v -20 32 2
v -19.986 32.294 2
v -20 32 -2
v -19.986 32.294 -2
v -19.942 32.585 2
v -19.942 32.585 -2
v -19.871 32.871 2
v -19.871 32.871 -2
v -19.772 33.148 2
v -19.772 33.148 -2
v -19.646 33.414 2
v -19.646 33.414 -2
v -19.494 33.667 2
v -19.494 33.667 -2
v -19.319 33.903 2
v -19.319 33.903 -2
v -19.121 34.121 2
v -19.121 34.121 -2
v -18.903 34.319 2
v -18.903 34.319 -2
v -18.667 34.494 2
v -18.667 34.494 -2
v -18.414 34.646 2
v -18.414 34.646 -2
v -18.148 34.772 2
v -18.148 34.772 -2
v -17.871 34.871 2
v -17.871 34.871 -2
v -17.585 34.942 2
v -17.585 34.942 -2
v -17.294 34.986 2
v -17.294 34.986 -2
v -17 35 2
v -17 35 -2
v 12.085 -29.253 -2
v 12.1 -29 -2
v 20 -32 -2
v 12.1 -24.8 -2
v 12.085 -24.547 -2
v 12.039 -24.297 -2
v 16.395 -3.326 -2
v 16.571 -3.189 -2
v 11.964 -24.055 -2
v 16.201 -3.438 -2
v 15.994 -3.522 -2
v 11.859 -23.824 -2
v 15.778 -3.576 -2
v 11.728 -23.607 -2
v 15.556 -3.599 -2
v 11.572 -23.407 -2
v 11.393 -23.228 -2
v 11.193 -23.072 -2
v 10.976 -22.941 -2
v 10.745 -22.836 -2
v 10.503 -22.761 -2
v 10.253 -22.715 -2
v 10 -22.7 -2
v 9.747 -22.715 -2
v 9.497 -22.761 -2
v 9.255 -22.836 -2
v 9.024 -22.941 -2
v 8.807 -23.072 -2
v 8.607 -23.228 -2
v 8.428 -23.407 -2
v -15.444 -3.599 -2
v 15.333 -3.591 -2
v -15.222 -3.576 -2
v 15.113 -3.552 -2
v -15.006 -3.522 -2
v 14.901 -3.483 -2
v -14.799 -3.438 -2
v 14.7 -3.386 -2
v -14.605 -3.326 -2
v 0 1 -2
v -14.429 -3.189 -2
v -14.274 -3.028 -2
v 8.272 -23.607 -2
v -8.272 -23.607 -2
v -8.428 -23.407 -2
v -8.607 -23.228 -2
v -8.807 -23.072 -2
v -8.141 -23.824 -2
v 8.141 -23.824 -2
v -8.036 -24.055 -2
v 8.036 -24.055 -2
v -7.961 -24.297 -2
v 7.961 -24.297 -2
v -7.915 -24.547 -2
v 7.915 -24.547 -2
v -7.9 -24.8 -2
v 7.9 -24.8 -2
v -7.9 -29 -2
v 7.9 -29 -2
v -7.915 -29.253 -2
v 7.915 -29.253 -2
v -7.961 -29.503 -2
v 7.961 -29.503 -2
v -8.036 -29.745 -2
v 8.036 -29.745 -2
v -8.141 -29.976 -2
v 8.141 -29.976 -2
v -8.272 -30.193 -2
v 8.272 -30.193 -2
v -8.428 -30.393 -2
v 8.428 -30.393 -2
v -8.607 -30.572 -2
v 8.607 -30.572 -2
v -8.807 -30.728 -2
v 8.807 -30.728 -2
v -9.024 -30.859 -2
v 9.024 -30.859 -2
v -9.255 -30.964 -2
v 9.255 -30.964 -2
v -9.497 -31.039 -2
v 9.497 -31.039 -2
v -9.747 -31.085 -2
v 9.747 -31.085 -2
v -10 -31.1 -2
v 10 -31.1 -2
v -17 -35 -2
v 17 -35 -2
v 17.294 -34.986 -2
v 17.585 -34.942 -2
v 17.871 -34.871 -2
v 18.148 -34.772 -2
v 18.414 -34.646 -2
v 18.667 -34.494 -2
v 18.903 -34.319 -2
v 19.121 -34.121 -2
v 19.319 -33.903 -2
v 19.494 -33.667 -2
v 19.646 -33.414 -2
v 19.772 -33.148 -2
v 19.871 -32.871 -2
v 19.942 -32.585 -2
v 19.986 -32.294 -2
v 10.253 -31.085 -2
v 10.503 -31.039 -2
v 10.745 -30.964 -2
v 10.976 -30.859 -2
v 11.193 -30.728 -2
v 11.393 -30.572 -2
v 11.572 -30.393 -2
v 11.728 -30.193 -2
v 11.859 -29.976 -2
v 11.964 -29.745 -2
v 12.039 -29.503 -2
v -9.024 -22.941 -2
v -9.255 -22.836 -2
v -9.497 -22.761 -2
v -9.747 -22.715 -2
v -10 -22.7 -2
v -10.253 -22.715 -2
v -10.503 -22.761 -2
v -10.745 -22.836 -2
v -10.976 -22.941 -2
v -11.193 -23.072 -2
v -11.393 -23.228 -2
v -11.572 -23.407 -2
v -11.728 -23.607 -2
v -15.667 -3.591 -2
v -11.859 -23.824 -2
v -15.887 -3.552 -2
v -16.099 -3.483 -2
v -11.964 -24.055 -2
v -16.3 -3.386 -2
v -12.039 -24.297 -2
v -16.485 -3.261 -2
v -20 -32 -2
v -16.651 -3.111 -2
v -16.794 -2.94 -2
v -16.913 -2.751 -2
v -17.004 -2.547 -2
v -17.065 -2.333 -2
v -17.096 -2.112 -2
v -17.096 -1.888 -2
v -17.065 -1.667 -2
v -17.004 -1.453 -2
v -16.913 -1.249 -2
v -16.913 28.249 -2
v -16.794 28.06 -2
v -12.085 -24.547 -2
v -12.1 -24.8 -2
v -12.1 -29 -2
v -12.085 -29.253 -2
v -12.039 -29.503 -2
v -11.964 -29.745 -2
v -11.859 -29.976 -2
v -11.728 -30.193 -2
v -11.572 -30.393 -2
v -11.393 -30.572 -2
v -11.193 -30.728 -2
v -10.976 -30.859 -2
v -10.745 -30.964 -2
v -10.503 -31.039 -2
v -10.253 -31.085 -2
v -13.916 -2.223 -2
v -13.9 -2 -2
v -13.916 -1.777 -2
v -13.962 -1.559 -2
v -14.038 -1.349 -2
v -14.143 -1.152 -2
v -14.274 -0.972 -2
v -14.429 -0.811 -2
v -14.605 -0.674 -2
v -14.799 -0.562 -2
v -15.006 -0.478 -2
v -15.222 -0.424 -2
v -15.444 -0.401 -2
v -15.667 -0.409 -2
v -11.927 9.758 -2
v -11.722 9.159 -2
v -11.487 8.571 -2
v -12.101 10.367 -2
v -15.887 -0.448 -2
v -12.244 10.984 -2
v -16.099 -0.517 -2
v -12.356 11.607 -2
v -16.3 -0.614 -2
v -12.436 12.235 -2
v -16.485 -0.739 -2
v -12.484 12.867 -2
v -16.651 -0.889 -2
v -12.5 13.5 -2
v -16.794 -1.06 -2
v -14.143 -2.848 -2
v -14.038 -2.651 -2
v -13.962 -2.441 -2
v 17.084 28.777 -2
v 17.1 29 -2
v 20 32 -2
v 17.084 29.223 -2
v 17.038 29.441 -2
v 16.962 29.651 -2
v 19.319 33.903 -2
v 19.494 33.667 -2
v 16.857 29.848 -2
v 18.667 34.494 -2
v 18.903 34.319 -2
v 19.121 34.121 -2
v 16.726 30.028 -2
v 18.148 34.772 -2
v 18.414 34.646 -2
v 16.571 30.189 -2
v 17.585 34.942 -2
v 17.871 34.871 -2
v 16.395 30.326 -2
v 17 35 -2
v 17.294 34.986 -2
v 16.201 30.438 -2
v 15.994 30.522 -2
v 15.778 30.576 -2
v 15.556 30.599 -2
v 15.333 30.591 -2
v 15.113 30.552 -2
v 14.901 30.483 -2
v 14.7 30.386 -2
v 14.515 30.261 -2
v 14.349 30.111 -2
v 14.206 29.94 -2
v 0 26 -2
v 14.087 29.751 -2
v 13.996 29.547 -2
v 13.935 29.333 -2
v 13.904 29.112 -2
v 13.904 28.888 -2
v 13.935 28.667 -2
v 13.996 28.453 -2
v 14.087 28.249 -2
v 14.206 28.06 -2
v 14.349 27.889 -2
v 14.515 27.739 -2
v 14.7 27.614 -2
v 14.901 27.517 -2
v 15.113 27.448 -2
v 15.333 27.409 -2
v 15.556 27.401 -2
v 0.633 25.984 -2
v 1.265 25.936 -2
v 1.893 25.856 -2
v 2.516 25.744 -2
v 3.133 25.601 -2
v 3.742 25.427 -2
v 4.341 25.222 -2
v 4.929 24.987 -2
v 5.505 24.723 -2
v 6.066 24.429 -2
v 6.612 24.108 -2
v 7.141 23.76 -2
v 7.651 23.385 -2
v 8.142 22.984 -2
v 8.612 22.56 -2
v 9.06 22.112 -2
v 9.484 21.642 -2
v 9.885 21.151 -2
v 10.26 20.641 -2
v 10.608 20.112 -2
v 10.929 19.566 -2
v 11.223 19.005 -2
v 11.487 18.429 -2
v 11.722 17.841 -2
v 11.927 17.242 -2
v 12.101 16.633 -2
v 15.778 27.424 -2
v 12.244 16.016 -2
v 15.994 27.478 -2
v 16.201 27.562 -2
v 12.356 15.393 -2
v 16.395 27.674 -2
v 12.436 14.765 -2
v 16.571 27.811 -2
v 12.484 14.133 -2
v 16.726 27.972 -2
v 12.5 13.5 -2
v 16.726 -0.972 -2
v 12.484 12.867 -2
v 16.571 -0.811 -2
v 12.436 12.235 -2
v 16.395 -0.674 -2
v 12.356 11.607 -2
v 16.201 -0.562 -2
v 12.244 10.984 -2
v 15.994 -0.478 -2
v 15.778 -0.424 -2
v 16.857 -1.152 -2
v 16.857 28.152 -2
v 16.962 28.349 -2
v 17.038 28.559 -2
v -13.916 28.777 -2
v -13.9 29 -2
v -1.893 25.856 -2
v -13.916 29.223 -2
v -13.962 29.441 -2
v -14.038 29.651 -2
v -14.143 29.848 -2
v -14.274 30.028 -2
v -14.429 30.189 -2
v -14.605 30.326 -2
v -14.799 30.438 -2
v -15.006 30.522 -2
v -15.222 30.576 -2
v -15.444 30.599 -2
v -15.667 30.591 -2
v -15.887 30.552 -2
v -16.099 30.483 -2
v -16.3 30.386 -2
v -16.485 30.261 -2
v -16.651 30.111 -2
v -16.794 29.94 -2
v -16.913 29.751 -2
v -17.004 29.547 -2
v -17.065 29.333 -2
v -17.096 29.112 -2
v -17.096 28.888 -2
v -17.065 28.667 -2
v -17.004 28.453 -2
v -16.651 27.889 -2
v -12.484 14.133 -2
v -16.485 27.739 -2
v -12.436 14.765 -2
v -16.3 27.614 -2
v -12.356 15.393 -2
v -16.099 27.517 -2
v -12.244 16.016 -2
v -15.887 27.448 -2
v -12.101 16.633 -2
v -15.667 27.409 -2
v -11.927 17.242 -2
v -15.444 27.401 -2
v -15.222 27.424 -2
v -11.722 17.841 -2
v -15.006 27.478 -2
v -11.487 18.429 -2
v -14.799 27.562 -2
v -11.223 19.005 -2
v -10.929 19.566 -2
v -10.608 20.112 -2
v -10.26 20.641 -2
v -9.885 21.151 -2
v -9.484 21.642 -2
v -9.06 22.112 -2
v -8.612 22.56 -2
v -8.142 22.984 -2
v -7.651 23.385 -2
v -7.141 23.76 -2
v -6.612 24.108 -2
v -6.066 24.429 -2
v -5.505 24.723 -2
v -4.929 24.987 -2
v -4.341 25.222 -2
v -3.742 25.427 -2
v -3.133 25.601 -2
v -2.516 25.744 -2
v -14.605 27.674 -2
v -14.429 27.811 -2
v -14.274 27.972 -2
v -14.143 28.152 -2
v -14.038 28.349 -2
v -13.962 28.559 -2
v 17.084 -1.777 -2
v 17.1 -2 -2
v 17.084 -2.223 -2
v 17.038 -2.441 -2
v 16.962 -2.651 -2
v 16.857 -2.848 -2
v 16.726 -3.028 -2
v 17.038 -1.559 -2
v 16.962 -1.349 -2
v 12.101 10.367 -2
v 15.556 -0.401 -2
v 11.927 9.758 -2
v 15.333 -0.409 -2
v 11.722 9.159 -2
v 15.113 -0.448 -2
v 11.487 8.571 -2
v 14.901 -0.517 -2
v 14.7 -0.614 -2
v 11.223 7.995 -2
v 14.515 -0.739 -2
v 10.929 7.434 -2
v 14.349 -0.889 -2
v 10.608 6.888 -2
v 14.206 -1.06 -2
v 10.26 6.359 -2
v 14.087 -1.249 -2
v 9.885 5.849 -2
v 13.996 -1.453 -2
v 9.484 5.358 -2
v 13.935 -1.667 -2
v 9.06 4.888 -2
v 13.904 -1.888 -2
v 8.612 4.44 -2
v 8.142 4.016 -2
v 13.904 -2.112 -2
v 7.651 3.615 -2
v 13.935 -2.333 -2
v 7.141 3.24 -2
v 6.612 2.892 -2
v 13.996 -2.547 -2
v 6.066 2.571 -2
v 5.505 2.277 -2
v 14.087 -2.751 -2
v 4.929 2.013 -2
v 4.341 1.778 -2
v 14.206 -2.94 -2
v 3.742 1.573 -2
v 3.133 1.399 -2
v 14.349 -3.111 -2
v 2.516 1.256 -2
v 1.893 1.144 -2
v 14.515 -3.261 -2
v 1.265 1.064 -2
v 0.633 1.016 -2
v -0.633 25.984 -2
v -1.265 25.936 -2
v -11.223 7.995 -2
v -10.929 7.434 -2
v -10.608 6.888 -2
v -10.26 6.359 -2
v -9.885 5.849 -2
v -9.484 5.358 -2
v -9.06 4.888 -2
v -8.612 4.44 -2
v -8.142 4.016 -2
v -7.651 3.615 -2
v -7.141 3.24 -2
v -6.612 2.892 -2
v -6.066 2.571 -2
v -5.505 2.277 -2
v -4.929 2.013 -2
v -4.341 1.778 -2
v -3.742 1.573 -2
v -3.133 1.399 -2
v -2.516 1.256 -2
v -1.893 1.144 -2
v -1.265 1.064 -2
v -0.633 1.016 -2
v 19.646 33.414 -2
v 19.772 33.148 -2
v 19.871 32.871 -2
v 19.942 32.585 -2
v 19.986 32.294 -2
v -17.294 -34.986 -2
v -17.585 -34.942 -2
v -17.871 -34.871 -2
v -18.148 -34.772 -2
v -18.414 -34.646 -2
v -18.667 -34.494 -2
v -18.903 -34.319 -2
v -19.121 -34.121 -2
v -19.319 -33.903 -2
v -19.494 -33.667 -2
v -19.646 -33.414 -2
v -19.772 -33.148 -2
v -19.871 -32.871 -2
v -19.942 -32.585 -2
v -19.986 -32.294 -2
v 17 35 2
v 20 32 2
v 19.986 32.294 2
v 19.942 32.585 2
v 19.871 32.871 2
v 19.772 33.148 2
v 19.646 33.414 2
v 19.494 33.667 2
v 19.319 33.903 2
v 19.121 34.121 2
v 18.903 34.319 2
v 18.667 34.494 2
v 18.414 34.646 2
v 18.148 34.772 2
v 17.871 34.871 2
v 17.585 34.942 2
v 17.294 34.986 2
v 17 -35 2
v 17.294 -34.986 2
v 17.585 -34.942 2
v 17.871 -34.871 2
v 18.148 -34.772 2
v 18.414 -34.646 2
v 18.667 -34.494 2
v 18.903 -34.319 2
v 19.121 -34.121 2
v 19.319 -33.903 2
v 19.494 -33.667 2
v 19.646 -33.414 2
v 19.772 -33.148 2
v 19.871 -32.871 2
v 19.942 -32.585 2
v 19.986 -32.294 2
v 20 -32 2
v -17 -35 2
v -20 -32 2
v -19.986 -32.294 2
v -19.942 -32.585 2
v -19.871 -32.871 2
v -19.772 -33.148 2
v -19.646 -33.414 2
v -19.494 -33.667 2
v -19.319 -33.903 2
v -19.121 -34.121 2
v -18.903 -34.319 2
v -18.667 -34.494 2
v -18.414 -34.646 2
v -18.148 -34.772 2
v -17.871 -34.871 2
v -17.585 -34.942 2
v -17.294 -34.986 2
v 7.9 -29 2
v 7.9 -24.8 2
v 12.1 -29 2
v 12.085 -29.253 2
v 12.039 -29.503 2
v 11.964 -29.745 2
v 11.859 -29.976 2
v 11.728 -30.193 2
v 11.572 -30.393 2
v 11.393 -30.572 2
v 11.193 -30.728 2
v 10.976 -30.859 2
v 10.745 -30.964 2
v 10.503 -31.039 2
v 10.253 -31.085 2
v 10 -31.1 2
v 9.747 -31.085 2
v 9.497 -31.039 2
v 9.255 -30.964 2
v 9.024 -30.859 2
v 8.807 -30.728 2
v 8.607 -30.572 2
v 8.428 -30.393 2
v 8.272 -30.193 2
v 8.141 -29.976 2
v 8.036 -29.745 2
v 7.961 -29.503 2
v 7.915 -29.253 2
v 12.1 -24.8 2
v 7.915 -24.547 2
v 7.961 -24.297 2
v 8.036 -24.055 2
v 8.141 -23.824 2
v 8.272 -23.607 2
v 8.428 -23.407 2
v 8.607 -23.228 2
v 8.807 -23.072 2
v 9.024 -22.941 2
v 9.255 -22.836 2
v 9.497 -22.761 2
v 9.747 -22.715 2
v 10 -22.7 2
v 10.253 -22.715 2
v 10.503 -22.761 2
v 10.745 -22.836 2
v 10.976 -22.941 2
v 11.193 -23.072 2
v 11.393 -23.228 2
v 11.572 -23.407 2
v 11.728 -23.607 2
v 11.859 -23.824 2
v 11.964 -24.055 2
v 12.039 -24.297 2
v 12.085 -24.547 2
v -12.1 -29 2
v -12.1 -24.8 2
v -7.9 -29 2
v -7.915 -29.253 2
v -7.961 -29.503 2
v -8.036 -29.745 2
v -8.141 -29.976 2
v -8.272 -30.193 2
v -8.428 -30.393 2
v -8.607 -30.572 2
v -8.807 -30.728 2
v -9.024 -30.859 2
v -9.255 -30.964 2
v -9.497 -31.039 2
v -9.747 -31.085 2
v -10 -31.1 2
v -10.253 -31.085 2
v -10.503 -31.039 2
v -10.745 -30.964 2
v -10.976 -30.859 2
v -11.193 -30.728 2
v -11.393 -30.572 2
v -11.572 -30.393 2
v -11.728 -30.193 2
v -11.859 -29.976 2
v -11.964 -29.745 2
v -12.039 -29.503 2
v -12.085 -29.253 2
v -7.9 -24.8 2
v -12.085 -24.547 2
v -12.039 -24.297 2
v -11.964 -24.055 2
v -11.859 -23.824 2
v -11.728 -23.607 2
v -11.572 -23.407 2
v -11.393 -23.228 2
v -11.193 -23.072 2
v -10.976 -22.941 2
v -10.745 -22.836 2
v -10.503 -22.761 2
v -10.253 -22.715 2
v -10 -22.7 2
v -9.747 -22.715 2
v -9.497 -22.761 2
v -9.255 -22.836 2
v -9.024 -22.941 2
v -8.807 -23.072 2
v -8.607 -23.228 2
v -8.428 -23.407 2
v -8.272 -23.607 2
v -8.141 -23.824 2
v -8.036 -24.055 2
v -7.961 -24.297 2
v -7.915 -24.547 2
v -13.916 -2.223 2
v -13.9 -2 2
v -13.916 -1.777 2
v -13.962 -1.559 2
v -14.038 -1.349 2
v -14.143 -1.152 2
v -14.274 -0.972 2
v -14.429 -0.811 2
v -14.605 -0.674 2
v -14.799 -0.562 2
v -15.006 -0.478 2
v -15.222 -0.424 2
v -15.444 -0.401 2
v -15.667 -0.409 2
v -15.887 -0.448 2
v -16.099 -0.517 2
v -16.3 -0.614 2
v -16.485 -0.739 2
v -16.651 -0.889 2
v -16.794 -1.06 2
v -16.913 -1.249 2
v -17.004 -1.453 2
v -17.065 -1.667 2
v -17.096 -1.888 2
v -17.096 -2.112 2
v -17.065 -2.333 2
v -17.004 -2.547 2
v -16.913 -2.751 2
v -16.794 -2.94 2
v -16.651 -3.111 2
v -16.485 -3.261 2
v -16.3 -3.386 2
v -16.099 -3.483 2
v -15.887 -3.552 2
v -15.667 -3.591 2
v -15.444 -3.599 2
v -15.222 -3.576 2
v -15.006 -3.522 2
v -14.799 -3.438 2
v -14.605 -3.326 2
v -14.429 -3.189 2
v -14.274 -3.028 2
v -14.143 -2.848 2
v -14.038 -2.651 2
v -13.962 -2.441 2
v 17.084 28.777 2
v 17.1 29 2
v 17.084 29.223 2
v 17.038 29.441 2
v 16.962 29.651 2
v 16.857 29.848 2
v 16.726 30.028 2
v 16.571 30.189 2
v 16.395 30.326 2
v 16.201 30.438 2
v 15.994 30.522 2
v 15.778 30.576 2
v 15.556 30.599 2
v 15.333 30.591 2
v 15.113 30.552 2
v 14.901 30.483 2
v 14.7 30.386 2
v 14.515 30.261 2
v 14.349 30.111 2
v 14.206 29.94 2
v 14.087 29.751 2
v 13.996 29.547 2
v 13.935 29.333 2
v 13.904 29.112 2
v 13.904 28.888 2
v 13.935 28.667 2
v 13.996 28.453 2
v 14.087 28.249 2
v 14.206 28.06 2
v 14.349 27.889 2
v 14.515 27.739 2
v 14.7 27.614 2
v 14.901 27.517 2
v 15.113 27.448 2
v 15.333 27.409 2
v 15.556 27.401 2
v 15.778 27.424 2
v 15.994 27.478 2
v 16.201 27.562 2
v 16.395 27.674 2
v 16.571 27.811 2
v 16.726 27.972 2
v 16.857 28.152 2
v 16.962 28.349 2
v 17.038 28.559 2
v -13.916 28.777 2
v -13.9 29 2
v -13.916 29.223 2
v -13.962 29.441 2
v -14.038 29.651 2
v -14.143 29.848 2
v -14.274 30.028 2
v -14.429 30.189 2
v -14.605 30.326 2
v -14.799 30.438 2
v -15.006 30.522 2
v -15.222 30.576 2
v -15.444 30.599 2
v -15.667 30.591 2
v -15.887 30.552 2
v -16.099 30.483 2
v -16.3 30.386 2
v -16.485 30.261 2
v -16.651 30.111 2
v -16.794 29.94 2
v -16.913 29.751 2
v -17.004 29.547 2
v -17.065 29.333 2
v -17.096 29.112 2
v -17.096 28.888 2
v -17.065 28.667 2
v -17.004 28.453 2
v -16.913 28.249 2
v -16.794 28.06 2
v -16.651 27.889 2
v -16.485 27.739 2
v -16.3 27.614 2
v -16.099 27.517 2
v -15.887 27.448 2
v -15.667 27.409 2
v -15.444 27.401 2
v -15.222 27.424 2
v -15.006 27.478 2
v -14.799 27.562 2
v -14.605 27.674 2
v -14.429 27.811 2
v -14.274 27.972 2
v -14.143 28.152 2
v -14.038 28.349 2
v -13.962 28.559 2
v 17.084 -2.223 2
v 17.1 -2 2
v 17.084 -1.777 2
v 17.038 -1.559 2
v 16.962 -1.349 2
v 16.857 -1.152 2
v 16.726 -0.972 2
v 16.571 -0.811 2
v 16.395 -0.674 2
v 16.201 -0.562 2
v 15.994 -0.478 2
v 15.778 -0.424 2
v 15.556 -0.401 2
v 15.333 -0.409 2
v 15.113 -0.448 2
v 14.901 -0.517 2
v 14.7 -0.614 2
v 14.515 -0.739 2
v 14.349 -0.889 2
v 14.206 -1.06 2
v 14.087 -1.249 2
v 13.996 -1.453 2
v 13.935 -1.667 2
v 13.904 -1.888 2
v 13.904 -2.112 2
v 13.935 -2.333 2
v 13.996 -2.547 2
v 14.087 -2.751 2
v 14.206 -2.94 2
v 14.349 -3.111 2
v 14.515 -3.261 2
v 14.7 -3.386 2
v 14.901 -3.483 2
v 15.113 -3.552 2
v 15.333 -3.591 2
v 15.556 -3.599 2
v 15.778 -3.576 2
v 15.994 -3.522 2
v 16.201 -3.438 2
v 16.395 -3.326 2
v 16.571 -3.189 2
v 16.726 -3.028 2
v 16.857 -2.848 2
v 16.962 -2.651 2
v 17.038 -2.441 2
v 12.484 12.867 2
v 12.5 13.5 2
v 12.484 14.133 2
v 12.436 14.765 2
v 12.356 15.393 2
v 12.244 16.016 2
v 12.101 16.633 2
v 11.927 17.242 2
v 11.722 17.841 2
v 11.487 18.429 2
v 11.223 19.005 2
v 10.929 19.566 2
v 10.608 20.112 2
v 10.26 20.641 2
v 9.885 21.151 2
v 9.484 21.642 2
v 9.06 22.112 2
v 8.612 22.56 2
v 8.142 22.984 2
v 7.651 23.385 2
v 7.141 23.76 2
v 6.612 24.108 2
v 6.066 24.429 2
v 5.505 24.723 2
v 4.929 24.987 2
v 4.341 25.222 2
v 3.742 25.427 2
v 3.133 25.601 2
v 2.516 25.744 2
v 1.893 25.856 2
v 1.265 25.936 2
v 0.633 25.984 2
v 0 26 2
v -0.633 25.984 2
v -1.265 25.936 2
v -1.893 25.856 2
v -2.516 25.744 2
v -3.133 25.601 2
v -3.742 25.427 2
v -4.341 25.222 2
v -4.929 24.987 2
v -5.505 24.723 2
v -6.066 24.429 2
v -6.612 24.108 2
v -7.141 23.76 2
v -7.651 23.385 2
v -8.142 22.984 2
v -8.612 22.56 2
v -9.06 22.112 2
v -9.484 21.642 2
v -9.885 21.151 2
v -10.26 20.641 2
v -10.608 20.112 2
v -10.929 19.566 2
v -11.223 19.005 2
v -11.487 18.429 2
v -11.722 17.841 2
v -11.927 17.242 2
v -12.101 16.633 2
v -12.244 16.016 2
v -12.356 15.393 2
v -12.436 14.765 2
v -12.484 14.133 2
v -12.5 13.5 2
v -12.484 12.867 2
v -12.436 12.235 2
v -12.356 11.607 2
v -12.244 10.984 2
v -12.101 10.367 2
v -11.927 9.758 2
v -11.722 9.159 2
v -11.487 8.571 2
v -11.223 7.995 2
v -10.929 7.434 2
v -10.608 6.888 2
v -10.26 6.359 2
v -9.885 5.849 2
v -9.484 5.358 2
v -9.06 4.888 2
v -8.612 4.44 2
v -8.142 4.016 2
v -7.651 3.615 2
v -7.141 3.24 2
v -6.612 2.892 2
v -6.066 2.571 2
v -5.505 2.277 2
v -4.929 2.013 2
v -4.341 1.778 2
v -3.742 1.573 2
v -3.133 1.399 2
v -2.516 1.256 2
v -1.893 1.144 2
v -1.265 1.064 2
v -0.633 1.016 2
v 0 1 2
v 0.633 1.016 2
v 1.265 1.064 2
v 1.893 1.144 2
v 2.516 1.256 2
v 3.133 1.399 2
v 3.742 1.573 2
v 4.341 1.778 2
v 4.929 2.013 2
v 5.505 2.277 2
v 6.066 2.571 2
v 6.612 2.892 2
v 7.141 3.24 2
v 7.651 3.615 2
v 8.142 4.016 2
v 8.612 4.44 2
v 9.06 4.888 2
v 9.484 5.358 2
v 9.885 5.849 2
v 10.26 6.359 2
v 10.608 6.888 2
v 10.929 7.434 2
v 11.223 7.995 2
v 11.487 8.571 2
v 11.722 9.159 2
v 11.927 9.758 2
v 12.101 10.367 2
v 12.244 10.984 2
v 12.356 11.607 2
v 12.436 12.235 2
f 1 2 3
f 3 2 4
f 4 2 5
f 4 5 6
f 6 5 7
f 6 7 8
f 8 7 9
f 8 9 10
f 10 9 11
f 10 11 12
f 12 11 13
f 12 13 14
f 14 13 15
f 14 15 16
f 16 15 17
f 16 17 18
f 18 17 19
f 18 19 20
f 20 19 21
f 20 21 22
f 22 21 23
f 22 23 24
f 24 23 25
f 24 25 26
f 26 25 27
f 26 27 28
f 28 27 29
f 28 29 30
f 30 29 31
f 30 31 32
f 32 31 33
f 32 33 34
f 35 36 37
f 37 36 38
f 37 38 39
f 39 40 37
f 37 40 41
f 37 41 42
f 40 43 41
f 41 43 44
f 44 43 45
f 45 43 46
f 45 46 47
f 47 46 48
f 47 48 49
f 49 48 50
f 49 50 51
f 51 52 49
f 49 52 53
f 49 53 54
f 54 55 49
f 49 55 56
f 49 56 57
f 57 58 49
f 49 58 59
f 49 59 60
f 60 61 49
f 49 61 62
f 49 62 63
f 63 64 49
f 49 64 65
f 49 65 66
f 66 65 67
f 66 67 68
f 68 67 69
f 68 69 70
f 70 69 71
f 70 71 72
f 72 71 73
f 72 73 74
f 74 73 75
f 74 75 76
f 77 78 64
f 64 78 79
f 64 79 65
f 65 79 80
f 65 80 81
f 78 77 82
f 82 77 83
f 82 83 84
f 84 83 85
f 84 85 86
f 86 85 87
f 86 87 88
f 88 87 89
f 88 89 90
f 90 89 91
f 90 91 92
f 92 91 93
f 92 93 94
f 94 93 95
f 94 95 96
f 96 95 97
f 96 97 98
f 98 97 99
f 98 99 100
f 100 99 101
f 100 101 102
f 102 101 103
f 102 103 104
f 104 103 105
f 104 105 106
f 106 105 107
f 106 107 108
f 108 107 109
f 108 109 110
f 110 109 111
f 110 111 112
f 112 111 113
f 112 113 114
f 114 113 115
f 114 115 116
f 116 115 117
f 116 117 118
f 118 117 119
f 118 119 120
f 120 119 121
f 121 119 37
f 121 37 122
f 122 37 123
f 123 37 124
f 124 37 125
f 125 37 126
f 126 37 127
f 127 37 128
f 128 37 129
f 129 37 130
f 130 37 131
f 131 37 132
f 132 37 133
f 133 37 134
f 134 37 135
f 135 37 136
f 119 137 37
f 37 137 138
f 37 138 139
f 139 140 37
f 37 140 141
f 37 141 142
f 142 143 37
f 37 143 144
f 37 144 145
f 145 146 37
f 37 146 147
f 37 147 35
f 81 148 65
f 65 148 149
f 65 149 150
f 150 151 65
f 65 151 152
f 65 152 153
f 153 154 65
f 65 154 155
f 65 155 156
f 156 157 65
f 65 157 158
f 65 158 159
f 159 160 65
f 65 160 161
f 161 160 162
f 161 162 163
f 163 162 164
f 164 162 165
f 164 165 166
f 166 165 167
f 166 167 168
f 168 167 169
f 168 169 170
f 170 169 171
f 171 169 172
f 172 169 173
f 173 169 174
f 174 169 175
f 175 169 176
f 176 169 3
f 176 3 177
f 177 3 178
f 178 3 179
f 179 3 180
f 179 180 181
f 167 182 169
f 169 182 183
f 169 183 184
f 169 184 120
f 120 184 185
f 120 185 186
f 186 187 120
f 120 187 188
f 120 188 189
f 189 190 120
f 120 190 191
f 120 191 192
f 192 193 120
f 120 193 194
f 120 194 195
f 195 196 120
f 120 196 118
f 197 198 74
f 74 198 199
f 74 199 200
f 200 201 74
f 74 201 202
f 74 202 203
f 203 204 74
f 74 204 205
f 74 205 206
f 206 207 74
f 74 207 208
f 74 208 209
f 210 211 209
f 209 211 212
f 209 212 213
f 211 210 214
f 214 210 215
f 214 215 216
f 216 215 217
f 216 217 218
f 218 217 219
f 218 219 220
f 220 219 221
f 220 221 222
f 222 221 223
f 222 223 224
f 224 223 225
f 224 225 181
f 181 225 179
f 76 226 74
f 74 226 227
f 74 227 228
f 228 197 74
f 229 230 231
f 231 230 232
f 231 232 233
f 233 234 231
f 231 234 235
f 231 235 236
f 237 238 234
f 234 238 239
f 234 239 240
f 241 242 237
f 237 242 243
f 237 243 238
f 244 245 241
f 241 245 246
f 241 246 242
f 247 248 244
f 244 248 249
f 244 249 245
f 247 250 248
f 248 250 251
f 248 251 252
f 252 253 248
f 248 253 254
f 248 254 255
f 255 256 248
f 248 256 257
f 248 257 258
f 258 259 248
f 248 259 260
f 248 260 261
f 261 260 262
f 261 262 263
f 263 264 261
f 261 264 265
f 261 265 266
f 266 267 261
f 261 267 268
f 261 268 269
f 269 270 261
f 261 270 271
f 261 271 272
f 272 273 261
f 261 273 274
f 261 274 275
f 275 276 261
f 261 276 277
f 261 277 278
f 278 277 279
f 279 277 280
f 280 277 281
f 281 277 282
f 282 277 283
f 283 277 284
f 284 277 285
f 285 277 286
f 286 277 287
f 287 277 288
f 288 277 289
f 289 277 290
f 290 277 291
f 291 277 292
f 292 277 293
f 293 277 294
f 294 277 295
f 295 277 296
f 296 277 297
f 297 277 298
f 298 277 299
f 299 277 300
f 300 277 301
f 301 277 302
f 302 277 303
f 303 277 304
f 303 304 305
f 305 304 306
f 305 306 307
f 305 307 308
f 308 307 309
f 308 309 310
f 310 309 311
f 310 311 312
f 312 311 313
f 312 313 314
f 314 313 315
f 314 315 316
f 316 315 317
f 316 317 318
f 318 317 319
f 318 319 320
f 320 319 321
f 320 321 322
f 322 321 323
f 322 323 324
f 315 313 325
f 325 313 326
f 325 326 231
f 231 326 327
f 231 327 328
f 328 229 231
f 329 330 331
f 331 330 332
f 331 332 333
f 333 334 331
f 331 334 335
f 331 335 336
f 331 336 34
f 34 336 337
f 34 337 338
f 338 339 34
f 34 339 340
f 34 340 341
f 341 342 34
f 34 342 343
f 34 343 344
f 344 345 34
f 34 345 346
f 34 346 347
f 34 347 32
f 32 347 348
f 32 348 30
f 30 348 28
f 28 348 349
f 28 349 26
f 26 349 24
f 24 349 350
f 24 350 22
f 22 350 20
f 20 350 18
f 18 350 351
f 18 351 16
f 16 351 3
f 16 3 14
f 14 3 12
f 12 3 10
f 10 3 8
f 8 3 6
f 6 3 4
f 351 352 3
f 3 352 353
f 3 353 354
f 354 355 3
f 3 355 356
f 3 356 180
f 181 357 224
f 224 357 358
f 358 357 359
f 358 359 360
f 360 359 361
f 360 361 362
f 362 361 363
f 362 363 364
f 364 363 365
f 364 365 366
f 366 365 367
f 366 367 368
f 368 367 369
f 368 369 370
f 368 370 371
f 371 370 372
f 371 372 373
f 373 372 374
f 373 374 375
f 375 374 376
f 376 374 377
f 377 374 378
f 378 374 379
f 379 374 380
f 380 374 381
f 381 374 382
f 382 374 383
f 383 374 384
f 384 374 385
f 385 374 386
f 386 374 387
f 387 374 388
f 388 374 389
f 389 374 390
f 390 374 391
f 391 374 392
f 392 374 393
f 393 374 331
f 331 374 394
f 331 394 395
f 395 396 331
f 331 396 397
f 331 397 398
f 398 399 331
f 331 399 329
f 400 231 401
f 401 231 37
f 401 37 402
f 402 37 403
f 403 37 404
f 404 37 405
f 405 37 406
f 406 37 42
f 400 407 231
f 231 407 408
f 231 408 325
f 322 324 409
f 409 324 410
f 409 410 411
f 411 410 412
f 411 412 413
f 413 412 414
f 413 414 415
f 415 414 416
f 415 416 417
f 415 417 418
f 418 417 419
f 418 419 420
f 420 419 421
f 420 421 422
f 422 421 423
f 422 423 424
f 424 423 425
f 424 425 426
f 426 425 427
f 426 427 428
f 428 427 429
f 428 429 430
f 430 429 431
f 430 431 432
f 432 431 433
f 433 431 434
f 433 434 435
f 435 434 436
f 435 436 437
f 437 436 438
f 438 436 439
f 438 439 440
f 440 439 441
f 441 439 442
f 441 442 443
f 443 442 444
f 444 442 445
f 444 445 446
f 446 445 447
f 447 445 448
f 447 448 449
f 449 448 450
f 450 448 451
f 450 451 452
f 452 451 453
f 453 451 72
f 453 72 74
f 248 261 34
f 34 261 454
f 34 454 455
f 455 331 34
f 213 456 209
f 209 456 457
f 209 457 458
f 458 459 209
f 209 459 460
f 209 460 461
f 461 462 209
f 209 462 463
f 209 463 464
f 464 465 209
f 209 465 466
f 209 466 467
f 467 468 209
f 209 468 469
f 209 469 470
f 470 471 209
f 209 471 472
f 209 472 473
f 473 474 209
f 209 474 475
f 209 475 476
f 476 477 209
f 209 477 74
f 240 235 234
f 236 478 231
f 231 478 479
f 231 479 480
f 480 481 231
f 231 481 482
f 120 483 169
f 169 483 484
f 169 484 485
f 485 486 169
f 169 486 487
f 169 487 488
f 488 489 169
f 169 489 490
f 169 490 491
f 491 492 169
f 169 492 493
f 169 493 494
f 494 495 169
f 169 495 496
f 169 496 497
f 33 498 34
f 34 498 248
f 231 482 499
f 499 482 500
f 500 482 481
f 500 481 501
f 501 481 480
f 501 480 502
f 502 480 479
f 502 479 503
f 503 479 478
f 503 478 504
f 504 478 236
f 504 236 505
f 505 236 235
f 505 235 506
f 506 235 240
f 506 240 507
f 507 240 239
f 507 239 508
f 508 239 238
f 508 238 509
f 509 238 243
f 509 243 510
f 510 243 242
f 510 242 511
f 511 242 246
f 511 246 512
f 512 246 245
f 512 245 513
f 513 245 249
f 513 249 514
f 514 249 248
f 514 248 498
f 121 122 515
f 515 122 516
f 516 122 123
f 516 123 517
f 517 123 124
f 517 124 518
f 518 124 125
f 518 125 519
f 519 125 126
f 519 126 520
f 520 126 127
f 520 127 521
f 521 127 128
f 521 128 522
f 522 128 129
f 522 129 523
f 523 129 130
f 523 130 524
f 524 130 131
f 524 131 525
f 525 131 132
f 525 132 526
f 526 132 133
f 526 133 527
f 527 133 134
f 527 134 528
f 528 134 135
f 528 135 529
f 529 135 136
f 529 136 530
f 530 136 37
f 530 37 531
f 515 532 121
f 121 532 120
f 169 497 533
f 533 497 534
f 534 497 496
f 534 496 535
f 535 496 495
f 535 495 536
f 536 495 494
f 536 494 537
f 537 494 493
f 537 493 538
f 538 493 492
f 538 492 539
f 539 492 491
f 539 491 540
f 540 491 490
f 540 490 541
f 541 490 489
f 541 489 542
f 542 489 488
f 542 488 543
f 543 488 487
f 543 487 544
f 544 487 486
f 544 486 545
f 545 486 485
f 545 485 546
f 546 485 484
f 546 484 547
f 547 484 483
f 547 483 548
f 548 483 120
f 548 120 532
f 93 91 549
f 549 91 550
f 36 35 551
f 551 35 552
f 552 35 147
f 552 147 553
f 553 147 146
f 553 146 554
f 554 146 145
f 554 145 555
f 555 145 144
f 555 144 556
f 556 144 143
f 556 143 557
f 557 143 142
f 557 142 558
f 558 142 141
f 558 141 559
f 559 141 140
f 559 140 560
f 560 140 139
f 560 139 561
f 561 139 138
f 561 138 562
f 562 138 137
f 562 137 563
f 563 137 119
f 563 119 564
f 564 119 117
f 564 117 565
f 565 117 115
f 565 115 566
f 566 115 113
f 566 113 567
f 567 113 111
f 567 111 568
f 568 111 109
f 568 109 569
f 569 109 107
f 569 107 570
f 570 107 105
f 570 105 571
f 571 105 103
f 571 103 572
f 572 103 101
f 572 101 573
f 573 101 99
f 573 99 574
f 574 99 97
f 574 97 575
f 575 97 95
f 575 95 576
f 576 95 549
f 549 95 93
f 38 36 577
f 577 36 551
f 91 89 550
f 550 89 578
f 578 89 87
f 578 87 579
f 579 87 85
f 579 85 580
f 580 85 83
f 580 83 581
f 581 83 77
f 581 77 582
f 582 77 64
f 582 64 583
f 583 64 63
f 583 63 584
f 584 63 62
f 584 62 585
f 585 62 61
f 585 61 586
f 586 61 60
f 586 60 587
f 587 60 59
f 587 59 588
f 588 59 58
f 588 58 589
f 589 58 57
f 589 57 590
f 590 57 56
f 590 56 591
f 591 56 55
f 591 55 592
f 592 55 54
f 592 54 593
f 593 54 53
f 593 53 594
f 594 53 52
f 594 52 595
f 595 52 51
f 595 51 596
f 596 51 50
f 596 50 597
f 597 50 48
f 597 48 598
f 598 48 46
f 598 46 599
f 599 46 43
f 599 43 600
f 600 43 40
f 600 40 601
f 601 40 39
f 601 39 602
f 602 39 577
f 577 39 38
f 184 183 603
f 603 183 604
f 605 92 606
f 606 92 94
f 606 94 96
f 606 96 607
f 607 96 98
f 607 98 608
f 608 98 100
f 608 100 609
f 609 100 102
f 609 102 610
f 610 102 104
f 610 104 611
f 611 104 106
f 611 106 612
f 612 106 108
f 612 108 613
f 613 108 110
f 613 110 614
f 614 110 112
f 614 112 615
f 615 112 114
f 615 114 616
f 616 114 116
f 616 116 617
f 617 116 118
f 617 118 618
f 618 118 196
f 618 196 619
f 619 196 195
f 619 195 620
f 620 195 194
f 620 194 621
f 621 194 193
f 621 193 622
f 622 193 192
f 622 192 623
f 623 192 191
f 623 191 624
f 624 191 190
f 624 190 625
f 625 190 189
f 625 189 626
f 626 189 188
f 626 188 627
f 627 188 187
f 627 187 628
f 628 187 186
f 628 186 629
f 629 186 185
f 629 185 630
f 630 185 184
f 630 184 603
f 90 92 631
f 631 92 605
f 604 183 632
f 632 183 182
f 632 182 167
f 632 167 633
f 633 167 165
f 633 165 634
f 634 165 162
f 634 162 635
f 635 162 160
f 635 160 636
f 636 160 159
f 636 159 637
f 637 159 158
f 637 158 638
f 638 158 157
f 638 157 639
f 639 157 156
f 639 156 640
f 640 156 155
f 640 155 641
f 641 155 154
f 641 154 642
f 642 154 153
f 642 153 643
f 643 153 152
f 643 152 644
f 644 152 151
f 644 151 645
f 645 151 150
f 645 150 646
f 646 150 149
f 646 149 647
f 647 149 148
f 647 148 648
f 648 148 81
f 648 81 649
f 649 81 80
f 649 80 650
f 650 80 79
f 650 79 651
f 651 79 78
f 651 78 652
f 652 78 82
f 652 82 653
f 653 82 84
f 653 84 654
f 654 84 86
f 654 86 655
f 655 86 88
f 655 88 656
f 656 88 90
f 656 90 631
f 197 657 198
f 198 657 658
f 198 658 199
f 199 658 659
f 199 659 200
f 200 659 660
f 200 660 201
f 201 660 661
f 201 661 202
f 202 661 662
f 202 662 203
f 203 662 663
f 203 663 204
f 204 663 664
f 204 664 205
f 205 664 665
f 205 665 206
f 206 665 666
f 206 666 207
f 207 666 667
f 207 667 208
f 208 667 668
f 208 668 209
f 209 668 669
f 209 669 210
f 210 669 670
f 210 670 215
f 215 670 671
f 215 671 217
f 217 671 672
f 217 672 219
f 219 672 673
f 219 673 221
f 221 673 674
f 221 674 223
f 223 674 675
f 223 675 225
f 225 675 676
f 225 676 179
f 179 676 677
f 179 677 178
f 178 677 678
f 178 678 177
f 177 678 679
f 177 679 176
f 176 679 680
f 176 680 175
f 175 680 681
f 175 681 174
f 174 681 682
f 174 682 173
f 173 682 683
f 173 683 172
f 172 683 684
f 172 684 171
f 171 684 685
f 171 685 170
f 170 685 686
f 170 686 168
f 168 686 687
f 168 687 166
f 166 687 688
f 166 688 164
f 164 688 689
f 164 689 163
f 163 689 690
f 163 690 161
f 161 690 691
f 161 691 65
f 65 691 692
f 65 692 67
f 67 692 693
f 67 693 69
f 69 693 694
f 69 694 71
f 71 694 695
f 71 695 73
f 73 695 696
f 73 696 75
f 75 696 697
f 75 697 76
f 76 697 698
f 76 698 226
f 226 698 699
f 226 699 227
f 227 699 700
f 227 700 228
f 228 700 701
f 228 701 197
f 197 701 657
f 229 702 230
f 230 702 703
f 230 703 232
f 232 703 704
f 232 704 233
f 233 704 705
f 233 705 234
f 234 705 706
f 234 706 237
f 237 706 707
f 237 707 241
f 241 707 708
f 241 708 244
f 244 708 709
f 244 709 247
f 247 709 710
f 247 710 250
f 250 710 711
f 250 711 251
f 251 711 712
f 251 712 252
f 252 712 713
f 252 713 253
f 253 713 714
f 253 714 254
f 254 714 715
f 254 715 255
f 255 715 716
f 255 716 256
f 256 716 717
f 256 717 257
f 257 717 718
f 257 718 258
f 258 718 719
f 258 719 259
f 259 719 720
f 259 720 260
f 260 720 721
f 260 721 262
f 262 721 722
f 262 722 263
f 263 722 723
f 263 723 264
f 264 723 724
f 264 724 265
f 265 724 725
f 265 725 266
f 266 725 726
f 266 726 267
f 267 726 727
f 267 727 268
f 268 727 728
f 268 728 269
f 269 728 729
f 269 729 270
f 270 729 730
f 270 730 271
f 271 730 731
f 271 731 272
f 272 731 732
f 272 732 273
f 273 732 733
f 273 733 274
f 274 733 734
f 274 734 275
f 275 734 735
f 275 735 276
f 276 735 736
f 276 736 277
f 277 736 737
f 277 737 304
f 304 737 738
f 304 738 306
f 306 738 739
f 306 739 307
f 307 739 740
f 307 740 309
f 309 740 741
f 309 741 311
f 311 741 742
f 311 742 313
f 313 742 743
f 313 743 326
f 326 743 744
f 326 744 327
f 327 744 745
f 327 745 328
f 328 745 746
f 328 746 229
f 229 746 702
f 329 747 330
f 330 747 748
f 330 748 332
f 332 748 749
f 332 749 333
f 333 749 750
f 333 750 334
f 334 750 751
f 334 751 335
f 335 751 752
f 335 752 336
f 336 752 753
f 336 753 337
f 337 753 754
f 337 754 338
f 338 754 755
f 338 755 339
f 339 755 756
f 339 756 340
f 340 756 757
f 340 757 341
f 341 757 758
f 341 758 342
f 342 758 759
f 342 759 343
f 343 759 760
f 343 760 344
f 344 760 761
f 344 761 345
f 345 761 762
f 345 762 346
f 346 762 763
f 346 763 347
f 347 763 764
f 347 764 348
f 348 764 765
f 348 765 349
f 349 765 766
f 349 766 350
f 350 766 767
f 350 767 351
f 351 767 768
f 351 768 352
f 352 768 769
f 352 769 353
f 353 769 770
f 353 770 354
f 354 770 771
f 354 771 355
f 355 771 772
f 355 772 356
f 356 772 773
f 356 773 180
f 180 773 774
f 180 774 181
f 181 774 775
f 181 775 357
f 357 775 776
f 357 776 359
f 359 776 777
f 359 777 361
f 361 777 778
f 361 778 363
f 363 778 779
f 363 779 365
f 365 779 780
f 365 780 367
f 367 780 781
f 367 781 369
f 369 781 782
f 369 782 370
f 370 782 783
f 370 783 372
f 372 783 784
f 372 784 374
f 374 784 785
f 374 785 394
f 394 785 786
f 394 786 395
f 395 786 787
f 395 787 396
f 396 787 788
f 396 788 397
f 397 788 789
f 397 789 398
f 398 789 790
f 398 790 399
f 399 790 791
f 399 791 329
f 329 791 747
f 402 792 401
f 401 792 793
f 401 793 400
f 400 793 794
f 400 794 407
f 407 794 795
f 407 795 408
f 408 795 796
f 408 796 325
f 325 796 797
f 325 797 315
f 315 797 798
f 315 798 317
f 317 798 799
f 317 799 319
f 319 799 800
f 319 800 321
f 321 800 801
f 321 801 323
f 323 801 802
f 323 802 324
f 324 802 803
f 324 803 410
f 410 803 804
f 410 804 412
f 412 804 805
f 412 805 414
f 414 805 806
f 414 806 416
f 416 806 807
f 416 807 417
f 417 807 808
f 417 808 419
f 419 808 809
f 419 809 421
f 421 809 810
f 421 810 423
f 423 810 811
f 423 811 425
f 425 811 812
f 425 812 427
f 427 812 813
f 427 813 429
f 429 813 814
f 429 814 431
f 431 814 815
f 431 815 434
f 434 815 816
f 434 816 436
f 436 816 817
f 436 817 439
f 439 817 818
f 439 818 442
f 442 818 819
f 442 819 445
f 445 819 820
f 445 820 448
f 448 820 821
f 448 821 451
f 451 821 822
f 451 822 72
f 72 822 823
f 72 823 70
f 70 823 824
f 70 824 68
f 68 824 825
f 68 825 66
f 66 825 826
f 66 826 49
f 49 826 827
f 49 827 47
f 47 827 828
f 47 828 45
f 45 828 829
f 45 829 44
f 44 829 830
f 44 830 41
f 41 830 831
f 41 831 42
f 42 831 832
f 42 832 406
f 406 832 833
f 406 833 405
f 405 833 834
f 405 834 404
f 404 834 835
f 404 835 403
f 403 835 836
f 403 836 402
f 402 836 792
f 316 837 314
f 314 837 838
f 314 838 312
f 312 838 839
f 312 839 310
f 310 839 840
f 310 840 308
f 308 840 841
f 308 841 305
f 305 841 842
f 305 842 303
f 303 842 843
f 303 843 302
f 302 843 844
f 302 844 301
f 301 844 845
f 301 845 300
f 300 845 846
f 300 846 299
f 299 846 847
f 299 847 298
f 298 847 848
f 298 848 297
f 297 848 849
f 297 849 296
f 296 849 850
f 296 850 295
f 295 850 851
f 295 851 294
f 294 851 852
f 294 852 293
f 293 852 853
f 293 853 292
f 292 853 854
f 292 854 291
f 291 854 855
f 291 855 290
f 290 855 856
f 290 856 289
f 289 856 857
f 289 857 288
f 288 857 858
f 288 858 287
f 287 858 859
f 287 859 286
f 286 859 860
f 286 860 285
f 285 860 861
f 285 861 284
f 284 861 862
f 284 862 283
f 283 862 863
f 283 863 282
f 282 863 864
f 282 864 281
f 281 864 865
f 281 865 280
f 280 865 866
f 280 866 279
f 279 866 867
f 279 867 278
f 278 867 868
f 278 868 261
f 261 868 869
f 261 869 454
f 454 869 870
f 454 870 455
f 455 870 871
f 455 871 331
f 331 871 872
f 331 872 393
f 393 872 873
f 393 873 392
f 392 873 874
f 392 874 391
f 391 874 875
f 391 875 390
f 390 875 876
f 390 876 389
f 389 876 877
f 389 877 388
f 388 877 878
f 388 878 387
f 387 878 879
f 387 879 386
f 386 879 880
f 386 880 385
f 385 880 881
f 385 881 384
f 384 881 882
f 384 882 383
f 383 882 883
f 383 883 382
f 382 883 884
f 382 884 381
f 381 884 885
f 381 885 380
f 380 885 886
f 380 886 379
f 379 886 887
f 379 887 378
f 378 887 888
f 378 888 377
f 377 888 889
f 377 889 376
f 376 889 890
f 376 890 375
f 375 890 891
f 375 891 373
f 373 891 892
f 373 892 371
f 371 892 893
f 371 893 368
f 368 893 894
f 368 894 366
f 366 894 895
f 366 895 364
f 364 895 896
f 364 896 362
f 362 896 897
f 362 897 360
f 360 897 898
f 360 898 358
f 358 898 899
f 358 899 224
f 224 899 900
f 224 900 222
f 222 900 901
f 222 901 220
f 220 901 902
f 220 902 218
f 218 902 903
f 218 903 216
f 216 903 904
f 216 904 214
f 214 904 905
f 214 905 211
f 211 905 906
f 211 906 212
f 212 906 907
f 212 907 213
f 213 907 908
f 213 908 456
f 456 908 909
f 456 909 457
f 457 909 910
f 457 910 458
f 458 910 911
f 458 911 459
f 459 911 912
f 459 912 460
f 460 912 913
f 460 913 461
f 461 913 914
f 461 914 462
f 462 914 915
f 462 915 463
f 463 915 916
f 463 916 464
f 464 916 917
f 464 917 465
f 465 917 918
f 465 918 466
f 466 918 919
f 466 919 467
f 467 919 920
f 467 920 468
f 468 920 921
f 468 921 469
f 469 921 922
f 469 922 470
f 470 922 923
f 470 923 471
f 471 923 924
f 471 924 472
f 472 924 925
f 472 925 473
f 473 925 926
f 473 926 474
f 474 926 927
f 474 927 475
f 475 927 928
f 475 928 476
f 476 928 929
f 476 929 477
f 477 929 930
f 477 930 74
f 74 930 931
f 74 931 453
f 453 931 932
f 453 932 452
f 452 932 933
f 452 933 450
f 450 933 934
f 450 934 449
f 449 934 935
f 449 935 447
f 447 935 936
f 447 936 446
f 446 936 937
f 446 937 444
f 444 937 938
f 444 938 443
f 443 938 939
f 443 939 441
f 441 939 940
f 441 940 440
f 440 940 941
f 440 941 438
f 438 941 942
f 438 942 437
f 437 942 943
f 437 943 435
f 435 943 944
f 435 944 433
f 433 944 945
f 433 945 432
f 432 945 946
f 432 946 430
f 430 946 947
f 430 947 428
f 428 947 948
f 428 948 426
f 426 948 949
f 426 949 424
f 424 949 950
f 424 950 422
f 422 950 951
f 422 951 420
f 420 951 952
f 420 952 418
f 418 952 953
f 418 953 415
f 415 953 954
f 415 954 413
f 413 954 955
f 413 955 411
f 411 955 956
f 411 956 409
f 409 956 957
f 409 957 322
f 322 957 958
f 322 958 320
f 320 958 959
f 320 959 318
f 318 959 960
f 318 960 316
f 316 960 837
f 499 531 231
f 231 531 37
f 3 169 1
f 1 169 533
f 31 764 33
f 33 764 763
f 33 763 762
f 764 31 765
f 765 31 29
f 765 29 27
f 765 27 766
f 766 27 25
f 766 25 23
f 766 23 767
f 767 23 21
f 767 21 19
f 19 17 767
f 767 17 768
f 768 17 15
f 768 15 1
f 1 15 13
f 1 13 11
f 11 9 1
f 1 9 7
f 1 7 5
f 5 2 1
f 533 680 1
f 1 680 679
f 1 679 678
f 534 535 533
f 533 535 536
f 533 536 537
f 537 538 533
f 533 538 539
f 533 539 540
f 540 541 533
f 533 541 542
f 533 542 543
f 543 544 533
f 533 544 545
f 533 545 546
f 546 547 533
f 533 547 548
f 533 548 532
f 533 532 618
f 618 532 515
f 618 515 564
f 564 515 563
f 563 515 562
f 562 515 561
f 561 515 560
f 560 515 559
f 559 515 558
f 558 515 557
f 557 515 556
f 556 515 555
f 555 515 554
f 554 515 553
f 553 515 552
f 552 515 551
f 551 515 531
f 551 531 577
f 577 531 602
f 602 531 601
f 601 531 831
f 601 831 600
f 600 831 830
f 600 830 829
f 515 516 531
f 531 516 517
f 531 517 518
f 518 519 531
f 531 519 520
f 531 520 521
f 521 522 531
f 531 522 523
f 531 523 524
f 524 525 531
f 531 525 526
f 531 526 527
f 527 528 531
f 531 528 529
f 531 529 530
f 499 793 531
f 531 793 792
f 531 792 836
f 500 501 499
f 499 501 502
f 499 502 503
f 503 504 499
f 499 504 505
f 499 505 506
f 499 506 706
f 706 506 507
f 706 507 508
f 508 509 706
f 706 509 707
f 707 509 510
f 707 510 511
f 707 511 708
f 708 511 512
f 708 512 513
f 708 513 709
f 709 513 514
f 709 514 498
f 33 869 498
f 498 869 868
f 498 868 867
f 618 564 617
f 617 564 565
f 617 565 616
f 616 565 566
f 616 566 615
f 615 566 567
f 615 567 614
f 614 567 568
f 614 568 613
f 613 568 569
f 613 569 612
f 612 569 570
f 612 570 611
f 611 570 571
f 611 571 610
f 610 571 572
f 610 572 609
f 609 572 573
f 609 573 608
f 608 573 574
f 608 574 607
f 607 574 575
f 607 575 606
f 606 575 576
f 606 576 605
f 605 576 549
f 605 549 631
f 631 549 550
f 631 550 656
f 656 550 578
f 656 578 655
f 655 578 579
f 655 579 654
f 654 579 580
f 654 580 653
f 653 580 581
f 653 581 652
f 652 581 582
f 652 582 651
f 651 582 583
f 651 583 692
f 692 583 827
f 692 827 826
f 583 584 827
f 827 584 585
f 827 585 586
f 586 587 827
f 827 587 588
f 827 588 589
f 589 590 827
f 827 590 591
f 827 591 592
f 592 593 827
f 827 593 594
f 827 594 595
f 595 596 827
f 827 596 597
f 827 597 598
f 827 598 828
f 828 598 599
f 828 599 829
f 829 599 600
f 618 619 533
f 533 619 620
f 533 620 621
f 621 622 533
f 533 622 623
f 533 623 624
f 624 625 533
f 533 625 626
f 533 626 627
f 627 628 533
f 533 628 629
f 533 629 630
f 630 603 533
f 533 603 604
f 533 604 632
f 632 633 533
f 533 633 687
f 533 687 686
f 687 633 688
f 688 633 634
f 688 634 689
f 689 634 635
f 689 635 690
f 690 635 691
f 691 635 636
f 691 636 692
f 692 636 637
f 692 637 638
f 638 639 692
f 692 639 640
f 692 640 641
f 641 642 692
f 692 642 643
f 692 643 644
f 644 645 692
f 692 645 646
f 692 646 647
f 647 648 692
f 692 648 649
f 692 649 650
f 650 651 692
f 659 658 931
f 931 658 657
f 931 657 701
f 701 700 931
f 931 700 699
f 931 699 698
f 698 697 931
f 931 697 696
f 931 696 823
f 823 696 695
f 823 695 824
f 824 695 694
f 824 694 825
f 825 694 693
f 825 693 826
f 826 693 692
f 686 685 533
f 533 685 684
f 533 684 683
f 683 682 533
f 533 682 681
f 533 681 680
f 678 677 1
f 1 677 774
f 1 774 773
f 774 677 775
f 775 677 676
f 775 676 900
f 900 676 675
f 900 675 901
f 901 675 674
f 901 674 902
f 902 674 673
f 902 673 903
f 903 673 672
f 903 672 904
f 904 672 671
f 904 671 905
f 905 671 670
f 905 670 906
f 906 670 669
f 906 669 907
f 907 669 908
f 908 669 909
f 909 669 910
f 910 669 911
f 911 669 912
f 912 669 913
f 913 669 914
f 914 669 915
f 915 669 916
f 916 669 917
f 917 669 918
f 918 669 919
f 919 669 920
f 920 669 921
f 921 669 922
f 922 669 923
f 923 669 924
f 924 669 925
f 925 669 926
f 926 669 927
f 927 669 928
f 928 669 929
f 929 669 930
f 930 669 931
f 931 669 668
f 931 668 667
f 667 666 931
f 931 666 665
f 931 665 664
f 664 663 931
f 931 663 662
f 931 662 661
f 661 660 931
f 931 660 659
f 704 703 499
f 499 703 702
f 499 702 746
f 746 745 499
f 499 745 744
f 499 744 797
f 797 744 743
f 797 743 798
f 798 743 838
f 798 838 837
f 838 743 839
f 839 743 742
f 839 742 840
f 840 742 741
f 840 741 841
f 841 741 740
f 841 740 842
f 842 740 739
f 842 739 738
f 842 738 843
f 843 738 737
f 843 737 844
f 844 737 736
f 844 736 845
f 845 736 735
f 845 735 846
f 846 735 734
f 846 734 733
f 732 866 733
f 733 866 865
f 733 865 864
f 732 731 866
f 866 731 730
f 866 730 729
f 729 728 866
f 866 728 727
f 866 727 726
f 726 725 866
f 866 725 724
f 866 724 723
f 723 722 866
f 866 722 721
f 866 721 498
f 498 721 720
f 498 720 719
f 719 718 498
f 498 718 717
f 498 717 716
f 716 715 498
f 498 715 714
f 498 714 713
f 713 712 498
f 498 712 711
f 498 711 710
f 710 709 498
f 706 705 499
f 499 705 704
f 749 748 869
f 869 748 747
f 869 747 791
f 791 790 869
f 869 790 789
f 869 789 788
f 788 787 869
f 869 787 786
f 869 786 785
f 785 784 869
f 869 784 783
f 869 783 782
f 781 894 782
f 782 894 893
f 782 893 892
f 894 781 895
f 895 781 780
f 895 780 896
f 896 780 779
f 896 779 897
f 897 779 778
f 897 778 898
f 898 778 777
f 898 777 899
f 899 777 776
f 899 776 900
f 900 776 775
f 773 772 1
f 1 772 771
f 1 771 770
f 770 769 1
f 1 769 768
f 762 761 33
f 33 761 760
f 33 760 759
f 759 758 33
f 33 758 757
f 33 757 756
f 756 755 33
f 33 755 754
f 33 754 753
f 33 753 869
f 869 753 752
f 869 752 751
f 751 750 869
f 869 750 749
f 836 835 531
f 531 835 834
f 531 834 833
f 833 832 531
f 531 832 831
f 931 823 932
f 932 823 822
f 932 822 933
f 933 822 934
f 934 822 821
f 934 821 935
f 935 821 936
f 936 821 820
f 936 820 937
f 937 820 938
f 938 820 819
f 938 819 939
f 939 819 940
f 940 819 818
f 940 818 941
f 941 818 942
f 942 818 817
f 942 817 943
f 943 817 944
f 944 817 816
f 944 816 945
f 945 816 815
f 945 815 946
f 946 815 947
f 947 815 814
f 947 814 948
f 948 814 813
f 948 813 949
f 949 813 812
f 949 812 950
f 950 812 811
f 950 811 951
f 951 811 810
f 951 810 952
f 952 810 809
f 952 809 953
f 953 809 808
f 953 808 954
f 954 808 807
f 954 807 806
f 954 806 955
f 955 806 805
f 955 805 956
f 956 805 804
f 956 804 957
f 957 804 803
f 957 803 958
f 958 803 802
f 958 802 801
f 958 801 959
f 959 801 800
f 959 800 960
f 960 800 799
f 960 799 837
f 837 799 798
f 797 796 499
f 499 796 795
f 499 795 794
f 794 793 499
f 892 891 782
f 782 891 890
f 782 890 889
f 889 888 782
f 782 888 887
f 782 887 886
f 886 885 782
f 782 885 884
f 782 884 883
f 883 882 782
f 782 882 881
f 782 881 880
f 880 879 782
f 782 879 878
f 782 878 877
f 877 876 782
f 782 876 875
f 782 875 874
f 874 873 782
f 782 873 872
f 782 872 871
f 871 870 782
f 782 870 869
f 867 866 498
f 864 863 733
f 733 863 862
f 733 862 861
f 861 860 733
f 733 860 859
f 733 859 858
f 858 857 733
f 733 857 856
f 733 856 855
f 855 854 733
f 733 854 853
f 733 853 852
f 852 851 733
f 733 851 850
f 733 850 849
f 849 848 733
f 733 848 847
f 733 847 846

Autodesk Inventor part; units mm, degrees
ref_plane "YZ Plane" through (0, 0, 0) normal (1, 0, 0) x (0, 1, 0)
ref_plane "XZ Plane" through (0, 0, 0) normal (0, 1, 0) x (-1, 0, 0)
ref_plane "XY Plane" through (0, 0, 0) normal (0, 0, 1) x (1, 0, 0)
sketch "Sketch1" plane through (0, 0, 0) normal (0, 0, 1) x (1, 0, 0)
  line L0 (-20, 35) -> (20, 35)
  line L1 (20, 35) -> (20, -35)
  line L2 (20, -35) -> (-20, -35)
  line L3 (-20, -35) -> (-20, 35)
  point P0 (0, 0)
  point P1 (0, 35)
  point P2 (20, 0)
  dimension "d0" = 40
  dimension "d1" = 70
extrude "Extrusion1" add sketch "Sketch1" along normal mid plane 4
sketch "Sketch2" plane through (0, 0, 2) normal (0, 0, 1) x (1, 0, 0)
  circle A0 centre (0, 13.5) radius 12.5
  circle A1 centre (-15.5, 29) radius 1.6
  circle A2 centre (15.5, 29) radius 1.6
  circle A3 centre (15.5, -2) radius 1.6
  circle A4 centre (-15.5, -2) radius 1.6
  line L0 (-15.5, 29) -> (15.5, 29) construction
  line L1 (20, 35) -> (-20, 35) projected
  line L2 (-15.5, -2) -> (-15.5, 29) construction
  point P0 (0, 0)
  point P1 (0, 29)
  point P2 (-15.5, 13.5)
  dimension "d4" = 3.2
  dimension "d5" = 31
  dimension "d6" = 31
  dimension "d7" = 21.5
  dimension "d8" = 25
extrude "Extrusion2" cut sketch "Sketch2" against normal up to next
sketch "Sketch3" plane through (0, 0, 2) normal (0, 0, 1) x (1, 0, 0)
  arc A0 (-7.9, -24.8) -> (-12.1, -24.8) centre (-10, -24.8) ccw
  arc A1 (12.1, -24.8) -> (7.9, -24.8) centre (10, -24.8) ccw
  line L0 (-10, -24.8) -> (10, -24.8) construction
  arc A2 (-12.1, -29) -> (-7.9, -29) centre (-10, -29) ccw
  arc A3 (7.9, -29) -> (12.1, -29) centre (10, -29) ccw
  line L1 (-12.1, -29) -> (-12.1, -24.8)
  line L2 (-7.9, -24.8) -> (-7.9, -29)
  line L3 (7.9, -24.8) -> (7.9, -29)
  line L4 (12.1, -29) -> (12.1, -24.8)
  line L5 (-20, -35) -> (20, -35) projected
  point P0 (0, 0)
  point P1 (0, -24.8)
  dimension "d11" = 4.2
  dimension "d12" = 4.2
  dimension "d13" = 20
  dimension "d14" = 6
extrude "Extrusion3" cut sketch "Sketch3" against normal up to next
fillet "Fillet1" radius 3 4 edges at (-20, -35, 0) (20, -35, 0) (20, 35, 0) (-20, 35, 0)
equation "\"d6\" = d5"
properties part number "nema17-mount-bottom-z-axis-v2"
